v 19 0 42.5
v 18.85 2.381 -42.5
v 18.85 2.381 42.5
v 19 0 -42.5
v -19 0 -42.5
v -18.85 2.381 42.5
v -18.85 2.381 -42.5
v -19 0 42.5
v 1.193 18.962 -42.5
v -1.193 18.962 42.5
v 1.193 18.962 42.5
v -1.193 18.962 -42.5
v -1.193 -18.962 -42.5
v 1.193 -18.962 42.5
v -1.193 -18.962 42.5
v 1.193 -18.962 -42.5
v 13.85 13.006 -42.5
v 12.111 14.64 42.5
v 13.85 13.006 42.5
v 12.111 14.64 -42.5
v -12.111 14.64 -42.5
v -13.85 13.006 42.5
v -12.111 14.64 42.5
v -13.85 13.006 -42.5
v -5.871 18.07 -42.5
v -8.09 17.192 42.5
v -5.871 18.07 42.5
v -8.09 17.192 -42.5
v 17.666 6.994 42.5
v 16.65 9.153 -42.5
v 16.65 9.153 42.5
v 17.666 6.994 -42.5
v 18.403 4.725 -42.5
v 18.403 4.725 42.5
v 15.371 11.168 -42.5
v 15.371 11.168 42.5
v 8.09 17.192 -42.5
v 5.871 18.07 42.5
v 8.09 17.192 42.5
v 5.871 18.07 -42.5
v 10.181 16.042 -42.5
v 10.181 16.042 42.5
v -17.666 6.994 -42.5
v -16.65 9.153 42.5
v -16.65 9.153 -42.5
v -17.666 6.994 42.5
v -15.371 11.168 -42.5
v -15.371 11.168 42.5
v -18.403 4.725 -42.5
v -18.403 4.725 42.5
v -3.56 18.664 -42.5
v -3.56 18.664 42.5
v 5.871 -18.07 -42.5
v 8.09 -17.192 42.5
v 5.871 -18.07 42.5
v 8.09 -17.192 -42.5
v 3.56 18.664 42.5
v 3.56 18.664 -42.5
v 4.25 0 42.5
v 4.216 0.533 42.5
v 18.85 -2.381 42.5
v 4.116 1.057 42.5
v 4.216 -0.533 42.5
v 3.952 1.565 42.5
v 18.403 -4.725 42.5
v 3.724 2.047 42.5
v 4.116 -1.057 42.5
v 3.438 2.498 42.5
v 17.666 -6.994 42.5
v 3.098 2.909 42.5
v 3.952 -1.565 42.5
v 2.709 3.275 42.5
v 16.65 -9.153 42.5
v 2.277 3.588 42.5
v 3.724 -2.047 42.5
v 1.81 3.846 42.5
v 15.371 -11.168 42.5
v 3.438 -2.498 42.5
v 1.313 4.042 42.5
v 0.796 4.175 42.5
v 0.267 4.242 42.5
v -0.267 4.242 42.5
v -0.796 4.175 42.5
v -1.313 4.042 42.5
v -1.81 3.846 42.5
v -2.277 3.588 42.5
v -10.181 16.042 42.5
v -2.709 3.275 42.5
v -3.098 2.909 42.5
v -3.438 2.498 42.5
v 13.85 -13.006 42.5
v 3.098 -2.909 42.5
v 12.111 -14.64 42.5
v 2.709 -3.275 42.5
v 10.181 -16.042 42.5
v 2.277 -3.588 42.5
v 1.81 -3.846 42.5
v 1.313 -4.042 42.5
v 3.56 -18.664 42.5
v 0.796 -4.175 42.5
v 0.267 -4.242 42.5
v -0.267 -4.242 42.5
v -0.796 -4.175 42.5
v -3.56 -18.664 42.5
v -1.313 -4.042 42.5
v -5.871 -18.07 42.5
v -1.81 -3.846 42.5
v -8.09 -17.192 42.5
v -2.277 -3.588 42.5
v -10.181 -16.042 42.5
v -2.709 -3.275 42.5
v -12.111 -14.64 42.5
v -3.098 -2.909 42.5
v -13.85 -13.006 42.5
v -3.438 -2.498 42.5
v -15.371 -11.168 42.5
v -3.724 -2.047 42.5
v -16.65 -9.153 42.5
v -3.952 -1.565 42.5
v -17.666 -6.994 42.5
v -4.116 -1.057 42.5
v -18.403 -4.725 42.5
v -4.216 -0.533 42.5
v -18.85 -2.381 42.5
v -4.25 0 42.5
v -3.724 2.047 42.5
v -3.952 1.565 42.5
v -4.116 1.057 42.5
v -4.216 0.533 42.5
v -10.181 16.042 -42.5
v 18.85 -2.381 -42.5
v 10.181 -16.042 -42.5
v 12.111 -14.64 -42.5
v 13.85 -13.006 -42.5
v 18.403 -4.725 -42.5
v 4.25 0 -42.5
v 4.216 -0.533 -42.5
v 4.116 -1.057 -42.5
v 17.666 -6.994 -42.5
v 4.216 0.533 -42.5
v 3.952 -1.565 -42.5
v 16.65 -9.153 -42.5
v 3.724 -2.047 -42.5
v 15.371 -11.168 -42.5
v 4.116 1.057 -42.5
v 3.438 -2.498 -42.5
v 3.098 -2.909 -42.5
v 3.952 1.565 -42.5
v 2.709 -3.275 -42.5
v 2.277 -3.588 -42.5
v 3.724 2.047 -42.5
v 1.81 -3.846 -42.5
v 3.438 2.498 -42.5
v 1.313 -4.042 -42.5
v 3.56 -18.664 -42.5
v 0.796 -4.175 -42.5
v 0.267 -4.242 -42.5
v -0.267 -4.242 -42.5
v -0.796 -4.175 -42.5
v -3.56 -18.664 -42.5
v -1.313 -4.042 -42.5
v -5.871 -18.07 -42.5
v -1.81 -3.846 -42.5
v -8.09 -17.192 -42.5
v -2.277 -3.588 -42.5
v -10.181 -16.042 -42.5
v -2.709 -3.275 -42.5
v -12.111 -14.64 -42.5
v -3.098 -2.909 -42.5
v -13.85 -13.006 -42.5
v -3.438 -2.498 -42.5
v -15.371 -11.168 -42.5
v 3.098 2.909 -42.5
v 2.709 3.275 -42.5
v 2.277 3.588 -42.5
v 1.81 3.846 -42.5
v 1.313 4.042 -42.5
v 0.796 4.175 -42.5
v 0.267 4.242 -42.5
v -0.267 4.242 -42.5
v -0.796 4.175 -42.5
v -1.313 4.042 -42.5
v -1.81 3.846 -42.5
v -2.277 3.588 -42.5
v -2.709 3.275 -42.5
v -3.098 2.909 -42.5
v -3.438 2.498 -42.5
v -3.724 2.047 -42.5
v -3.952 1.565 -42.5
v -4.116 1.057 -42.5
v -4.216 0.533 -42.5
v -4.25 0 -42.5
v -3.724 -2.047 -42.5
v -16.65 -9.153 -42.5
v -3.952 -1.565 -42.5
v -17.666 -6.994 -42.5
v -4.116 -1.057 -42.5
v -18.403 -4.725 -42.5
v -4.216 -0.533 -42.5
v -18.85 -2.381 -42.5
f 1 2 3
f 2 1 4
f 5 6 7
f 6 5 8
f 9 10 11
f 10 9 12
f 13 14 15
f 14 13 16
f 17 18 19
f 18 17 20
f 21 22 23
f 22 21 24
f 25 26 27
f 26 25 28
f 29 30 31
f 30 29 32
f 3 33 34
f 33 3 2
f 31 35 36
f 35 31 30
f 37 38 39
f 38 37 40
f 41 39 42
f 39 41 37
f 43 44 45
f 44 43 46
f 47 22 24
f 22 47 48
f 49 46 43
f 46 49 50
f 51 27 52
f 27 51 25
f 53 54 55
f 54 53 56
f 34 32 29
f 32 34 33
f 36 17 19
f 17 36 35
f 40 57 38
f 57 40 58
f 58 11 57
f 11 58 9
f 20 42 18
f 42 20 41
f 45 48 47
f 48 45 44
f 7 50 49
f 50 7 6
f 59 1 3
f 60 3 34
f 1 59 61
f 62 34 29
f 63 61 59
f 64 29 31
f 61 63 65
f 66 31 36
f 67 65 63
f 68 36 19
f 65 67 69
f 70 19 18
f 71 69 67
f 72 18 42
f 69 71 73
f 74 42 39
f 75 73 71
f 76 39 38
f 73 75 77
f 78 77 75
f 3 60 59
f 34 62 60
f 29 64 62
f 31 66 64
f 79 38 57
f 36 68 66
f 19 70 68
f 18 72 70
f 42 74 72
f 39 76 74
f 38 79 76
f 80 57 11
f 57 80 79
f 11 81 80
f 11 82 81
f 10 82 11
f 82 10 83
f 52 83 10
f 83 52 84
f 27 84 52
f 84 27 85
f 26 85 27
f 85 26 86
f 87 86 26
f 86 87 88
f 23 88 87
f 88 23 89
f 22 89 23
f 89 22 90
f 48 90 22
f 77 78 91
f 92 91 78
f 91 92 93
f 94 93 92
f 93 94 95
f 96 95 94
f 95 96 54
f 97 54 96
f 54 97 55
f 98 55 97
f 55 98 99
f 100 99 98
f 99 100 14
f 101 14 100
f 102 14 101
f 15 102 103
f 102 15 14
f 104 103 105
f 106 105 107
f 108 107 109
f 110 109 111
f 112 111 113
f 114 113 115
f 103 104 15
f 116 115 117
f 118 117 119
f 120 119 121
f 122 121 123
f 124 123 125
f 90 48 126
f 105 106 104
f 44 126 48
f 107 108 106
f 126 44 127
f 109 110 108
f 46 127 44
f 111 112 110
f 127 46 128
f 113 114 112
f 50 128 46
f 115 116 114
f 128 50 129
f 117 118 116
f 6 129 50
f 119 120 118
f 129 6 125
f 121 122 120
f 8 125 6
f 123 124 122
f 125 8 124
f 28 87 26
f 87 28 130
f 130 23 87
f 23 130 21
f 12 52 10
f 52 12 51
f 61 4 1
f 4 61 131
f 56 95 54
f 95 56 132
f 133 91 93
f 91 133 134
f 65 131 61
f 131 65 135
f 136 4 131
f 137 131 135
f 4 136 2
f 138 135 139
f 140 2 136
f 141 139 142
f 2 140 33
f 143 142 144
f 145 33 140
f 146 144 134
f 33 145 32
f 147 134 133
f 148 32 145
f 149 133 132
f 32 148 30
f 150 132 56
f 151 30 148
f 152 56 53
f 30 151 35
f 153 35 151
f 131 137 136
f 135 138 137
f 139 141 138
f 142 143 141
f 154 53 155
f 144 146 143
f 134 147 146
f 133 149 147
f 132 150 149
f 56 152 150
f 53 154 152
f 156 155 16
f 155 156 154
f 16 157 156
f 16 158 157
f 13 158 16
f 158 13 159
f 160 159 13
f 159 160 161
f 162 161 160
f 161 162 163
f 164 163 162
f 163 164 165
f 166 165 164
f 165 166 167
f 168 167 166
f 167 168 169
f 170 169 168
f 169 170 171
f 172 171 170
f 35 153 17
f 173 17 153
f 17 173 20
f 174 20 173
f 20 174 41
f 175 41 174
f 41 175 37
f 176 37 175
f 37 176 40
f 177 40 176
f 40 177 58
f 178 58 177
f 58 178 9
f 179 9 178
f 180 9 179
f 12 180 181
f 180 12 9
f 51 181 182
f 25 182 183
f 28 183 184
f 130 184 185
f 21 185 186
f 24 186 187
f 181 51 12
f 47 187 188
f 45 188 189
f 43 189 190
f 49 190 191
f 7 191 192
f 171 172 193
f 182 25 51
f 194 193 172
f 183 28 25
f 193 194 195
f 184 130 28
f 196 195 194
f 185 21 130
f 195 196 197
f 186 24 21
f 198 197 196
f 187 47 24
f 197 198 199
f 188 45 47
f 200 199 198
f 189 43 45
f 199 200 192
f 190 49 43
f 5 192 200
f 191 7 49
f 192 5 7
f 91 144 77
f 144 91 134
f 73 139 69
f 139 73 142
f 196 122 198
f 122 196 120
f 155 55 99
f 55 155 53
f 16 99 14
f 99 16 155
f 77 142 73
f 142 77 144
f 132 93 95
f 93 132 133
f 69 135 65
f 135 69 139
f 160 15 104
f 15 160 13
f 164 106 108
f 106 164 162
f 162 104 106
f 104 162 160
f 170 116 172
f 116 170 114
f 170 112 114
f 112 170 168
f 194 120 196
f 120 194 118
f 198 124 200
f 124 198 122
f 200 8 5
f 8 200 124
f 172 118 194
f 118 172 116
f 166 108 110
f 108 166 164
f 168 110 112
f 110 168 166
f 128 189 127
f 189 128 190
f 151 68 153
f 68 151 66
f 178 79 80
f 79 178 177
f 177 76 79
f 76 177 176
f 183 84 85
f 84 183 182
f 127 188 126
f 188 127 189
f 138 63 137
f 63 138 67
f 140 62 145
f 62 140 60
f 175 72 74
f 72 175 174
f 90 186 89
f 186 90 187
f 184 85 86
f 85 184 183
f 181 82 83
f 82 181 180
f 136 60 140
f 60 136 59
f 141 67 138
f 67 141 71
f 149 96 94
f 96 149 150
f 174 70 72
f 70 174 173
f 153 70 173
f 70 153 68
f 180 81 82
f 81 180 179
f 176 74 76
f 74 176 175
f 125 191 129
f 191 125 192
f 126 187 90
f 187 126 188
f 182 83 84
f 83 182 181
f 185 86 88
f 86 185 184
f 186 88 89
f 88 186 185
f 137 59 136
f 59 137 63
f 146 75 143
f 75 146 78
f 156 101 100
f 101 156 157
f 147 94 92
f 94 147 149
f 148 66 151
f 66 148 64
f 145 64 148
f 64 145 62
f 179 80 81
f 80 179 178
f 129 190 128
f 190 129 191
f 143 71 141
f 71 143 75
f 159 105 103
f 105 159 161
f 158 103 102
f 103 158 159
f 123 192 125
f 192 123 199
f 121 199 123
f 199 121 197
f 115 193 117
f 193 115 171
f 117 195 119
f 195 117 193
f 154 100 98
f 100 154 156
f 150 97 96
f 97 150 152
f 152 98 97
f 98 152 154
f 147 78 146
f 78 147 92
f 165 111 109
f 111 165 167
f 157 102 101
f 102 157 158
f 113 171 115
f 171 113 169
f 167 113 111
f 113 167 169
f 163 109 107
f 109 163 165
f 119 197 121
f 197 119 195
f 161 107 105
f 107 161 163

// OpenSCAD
$fn = 50;


difference() {
	union() {
		translate(v = [0, 0, -42.5000000000]) {
			cylinder(h = 85, r = 19.0000000000);
		}
	}
	union() {
		translate(v = [0, 0, -100.0000000000]) {
			cylinder(h = 200, r = 4.2500000000);
		}
	}
}
